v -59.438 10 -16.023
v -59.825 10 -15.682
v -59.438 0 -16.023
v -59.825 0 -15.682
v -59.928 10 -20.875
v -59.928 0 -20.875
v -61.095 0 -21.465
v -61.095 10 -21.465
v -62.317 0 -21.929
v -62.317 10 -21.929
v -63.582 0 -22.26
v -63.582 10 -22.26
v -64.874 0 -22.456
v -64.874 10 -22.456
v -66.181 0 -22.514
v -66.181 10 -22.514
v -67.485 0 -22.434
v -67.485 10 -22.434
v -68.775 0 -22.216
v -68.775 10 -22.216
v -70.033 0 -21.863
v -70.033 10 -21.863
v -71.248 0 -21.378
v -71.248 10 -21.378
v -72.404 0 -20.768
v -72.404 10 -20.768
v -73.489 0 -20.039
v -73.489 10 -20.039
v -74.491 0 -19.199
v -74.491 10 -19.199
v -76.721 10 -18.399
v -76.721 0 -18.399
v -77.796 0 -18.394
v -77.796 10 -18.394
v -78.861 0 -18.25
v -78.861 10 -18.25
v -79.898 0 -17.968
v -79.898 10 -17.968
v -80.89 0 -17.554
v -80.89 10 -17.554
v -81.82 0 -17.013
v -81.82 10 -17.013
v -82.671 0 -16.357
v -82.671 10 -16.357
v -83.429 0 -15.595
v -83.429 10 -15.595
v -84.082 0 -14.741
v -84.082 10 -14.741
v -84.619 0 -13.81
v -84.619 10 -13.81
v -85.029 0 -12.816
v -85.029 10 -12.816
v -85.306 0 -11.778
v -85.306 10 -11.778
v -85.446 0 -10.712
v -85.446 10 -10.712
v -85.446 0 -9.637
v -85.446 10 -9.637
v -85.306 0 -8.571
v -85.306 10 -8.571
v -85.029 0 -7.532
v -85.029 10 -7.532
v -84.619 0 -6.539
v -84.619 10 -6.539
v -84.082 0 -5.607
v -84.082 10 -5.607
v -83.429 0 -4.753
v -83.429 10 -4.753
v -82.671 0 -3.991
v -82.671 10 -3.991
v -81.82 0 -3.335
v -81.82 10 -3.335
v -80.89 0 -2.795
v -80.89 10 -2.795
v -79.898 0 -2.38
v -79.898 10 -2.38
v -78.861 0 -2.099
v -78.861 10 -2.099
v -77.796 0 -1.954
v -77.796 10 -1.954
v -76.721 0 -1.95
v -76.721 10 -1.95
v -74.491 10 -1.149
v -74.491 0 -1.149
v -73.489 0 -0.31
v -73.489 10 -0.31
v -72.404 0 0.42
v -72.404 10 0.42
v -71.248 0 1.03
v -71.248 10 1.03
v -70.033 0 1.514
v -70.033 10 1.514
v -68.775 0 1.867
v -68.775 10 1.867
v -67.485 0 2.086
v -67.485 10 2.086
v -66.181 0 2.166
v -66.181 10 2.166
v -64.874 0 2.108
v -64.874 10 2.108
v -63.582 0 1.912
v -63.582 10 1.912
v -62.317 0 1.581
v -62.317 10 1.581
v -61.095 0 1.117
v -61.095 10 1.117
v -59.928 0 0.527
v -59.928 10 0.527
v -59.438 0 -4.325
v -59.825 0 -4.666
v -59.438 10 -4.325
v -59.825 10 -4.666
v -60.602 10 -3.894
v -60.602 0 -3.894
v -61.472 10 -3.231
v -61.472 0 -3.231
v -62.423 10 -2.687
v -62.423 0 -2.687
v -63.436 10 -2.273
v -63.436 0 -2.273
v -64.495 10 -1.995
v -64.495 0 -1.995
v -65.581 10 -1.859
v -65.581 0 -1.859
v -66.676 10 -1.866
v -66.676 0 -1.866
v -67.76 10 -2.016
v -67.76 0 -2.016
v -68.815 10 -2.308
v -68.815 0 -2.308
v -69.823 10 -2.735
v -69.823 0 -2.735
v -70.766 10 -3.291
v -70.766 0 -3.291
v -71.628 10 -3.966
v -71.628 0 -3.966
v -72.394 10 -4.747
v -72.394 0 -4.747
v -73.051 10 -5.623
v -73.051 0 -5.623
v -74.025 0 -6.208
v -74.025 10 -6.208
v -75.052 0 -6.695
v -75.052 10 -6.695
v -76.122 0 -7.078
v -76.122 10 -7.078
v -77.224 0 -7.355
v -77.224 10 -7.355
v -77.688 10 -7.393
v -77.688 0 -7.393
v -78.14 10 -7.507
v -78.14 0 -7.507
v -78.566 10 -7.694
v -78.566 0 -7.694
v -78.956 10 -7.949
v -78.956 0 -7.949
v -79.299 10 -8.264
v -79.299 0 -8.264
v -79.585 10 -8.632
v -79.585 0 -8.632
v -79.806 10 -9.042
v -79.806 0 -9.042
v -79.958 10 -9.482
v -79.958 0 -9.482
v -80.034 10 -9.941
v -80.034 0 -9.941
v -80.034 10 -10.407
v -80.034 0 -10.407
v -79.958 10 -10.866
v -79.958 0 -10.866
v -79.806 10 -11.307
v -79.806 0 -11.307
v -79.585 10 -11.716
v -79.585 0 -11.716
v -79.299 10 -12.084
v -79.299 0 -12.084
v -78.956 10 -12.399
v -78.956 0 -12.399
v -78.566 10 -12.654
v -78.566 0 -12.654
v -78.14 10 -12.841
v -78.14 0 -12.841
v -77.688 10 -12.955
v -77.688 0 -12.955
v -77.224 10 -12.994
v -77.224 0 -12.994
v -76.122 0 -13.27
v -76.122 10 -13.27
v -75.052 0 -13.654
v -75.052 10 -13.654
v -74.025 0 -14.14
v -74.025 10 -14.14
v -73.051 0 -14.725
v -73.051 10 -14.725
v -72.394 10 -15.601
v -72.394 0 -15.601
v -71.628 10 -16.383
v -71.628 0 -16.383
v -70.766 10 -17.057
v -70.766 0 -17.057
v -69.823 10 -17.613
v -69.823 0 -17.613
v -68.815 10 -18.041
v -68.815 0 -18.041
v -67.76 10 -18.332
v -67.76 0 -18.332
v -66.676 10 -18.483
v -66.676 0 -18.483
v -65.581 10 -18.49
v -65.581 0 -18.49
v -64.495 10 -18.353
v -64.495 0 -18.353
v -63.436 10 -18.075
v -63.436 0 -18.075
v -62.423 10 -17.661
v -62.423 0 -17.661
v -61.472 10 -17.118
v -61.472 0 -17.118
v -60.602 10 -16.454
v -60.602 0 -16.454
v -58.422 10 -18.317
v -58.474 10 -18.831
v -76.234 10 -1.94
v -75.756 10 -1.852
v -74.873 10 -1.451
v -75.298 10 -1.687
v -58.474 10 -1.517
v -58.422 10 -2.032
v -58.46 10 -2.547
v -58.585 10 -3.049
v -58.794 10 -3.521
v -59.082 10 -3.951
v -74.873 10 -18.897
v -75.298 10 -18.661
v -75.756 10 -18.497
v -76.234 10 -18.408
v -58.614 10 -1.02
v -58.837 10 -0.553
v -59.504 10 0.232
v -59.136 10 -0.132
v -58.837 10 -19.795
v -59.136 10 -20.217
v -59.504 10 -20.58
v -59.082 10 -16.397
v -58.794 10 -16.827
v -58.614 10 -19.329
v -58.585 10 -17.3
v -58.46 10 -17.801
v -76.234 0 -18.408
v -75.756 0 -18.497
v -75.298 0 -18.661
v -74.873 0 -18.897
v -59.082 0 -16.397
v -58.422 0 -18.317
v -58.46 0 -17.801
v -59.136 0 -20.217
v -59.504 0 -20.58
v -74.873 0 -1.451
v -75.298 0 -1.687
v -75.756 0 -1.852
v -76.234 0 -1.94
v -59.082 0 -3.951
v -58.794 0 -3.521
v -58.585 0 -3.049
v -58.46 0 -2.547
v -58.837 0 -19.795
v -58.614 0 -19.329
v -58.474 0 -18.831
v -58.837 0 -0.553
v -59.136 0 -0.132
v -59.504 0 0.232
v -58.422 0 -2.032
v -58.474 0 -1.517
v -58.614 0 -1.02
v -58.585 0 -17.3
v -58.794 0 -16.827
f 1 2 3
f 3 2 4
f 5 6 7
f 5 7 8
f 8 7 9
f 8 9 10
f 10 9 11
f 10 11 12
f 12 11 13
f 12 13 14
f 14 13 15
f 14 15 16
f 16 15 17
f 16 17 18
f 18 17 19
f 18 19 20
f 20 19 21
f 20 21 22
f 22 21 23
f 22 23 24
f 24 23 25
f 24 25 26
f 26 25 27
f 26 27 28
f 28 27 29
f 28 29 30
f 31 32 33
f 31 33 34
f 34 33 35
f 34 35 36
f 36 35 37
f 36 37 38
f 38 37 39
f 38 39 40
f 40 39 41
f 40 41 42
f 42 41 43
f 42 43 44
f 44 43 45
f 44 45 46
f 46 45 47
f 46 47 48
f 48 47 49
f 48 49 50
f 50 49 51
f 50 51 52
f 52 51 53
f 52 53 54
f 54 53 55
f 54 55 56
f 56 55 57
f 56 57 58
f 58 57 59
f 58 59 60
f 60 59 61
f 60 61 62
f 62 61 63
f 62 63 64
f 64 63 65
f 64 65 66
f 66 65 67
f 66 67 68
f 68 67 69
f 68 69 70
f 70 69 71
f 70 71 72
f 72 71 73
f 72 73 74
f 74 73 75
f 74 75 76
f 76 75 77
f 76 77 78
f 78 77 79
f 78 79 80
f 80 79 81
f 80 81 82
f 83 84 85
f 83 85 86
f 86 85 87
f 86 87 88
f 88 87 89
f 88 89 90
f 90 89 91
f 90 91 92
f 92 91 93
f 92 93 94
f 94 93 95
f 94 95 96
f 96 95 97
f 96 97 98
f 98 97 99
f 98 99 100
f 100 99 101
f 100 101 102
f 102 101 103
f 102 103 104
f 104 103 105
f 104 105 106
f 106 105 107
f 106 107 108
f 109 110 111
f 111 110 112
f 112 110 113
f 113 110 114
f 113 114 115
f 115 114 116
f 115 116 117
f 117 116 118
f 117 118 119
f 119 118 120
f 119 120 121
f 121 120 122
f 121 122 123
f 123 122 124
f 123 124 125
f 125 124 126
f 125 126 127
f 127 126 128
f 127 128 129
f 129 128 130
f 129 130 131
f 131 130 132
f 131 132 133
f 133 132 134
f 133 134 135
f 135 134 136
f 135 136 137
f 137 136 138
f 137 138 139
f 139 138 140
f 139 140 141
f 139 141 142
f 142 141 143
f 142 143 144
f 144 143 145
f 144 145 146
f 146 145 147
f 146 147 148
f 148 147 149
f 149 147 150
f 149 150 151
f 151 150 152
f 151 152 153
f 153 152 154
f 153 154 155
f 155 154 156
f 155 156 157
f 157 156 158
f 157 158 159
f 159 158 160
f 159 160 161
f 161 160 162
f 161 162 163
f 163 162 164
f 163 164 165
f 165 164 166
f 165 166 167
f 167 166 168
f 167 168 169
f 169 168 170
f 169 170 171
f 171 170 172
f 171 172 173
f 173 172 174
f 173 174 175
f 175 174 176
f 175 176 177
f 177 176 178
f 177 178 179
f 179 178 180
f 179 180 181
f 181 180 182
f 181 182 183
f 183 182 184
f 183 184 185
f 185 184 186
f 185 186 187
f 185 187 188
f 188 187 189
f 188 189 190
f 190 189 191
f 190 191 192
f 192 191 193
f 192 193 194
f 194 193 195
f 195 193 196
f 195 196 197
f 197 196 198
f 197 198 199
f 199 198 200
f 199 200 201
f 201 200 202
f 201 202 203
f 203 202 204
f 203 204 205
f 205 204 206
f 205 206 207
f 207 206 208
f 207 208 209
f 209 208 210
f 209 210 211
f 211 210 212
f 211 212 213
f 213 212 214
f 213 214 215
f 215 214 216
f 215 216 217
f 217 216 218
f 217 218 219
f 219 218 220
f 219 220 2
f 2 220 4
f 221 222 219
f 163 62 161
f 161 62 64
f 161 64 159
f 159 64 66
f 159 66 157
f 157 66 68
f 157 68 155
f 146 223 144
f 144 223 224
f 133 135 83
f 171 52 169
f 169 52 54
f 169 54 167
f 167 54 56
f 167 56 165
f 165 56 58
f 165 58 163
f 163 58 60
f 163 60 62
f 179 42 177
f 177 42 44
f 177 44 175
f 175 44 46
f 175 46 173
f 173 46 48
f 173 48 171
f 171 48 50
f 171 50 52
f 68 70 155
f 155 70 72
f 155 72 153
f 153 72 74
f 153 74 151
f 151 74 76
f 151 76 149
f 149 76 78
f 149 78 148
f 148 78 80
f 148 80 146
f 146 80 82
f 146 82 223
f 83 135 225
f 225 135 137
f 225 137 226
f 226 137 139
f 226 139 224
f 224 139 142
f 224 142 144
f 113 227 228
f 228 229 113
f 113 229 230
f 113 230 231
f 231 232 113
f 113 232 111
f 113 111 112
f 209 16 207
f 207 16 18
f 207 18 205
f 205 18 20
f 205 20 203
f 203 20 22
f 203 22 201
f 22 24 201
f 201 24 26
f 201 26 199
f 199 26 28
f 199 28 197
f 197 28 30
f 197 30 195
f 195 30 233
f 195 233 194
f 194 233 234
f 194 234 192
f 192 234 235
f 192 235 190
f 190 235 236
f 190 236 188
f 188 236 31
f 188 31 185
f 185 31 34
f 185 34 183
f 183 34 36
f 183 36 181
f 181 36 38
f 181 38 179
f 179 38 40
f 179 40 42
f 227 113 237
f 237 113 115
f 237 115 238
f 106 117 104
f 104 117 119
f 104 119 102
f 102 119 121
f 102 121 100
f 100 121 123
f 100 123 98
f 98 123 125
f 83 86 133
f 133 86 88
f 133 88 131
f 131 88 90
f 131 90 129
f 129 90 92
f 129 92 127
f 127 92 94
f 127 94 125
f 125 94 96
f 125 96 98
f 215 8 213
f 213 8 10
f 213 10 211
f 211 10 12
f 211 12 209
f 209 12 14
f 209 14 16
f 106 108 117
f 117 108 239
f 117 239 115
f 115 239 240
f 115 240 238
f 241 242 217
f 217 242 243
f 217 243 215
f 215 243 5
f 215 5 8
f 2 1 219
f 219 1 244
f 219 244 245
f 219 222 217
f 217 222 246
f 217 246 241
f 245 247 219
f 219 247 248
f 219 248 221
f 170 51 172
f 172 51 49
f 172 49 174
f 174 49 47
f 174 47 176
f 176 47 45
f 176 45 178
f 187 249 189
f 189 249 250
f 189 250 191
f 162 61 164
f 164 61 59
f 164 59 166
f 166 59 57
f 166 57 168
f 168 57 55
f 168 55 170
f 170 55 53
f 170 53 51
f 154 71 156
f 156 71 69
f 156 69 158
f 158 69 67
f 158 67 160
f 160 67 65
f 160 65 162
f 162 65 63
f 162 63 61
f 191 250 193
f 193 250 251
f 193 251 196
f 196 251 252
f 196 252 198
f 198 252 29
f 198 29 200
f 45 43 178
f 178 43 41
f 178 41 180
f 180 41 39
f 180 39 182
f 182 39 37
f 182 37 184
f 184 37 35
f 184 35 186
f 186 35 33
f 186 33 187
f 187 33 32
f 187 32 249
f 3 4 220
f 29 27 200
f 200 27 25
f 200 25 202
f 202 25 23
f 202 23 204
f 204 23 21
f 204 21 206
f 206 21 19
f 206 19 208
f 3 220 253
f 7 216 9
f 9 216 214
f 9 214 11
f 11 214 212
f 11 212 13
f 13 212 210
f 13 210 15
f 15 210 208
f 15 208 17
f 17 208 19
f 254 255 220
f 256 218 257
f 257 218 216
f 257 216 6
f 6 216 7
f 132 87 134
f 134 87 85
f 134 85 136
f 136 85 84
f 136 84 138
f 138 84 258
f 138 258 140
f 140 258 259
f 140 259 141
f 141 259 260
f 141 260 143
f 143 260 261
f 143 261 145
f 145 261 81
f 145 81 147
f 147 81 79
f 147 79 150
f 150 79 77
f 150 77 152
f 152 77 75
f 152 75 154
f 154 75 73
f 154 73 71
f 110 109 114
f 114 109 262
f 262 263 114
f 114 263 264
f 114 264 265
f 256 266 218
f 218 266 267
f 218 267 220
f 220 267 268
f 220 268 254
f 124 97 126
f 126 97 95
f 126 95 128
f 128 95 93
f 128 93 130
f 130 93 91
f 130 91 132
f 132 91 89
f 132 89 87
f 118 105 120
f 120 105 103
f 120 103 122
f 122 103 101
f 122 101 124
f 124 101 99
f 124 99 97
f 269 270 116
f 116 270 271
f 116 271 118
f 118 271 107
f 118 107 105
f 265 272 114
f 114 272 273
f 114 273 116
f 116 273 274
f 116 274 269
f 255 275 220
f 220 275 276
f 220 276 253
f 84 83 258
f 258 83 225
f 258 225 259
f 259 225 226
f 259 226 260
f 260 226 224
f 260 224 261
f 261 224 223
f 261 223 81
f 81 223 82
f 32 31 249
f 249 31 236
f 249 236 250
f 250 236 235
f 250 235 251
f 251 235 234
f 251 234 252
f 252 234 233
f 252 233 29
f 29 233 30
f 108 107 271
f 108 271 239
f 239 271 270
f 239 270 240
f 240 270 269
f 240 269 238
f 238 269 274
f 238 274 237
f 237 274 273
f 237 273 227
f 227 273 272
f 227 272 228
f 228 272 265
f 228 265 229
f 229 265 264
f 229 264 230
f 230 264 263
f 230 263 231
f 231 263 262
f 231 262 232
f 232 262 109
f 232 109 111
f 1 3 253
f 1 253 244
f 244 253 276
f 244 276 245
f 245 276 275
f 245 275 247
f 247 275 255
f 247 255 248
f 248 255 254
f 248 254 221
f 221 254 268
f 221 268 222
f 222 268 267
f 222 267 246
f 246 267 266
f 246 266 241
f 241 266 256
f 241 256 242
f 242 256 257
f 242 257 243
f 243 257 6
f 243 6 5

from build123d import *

# Parameters (mm, degrees)
BOSS_EXTRUDE3_DEPTH = 10
FILLET3_R           = 3


with BuildPart() as part:
    # Sketch1 → Boss-Extrude3 (new body)
    with BuildSketch(Plane(origin=(0, 0, 0), x_dir=(1, 0, 0), z_dir=(0, 1, 0))):
        with BuildLine():
            Line((-59.825295148, 15.68233951), (-56.816678559, 18.33423136))
            ThreePointArc((-56.816678559, 18.33423136), (-66.151990039, 22.514585376), (-75.433985922, 18.217149798))
            ThreePointArc((-75.433985922, 18.217149798), (-85.46391923, 10.174191538), (-75.433985922, 2.131233278))
            ThreePointArc((-75.433985922, 2.131233278), (-66.151990039, -2.1662023), (-56.816678559, 2.014151715))
            Line((-56.816678559, 2.014151715), (-59.825295148, 4.666043566))
            ThreePointArc((-59.825295148, 4.666043566), (-66.67551375, 1.865796025), (-73.051288265, 5.622973224))
            ThreePointArc((-73.051288265, 5.622973224), (-75.052192589, 6.694861395), (-77.224146609, 7.3545417))
            ThreePointArc((-77.224146609, 7.3545417), (-80.043796447, 10.174191538), (-77.224146609, 12.993841376))
            ThreePointArc((-77.224146609, 12.993841376), (-75.052192589, 13.653521681), (-73.051288265, 14.725409851))
            ThreePointArc((-73.051288265, 14.725409851), (-66.67551375, 18.48258705), (-59.825295148, 15.68233951))
        make_face()
    extrude(amount=BOSS_EXTRUDE3_DEPTH)

    # Fillet3
    fillet3_edges = [part.edges().sort_by_distance(p)[0] for p in [
        (-56.816678559, 5, -2.014151715),
        (-75.433985922, 5, -2.131233278),
        (-75.433985922, 5, -18.217149798),
        (-56.816678559, 5, -18.33423136),
    ]]
    fillet(fillet3_edges, radius=FILLET3_R)


solid = part.part
